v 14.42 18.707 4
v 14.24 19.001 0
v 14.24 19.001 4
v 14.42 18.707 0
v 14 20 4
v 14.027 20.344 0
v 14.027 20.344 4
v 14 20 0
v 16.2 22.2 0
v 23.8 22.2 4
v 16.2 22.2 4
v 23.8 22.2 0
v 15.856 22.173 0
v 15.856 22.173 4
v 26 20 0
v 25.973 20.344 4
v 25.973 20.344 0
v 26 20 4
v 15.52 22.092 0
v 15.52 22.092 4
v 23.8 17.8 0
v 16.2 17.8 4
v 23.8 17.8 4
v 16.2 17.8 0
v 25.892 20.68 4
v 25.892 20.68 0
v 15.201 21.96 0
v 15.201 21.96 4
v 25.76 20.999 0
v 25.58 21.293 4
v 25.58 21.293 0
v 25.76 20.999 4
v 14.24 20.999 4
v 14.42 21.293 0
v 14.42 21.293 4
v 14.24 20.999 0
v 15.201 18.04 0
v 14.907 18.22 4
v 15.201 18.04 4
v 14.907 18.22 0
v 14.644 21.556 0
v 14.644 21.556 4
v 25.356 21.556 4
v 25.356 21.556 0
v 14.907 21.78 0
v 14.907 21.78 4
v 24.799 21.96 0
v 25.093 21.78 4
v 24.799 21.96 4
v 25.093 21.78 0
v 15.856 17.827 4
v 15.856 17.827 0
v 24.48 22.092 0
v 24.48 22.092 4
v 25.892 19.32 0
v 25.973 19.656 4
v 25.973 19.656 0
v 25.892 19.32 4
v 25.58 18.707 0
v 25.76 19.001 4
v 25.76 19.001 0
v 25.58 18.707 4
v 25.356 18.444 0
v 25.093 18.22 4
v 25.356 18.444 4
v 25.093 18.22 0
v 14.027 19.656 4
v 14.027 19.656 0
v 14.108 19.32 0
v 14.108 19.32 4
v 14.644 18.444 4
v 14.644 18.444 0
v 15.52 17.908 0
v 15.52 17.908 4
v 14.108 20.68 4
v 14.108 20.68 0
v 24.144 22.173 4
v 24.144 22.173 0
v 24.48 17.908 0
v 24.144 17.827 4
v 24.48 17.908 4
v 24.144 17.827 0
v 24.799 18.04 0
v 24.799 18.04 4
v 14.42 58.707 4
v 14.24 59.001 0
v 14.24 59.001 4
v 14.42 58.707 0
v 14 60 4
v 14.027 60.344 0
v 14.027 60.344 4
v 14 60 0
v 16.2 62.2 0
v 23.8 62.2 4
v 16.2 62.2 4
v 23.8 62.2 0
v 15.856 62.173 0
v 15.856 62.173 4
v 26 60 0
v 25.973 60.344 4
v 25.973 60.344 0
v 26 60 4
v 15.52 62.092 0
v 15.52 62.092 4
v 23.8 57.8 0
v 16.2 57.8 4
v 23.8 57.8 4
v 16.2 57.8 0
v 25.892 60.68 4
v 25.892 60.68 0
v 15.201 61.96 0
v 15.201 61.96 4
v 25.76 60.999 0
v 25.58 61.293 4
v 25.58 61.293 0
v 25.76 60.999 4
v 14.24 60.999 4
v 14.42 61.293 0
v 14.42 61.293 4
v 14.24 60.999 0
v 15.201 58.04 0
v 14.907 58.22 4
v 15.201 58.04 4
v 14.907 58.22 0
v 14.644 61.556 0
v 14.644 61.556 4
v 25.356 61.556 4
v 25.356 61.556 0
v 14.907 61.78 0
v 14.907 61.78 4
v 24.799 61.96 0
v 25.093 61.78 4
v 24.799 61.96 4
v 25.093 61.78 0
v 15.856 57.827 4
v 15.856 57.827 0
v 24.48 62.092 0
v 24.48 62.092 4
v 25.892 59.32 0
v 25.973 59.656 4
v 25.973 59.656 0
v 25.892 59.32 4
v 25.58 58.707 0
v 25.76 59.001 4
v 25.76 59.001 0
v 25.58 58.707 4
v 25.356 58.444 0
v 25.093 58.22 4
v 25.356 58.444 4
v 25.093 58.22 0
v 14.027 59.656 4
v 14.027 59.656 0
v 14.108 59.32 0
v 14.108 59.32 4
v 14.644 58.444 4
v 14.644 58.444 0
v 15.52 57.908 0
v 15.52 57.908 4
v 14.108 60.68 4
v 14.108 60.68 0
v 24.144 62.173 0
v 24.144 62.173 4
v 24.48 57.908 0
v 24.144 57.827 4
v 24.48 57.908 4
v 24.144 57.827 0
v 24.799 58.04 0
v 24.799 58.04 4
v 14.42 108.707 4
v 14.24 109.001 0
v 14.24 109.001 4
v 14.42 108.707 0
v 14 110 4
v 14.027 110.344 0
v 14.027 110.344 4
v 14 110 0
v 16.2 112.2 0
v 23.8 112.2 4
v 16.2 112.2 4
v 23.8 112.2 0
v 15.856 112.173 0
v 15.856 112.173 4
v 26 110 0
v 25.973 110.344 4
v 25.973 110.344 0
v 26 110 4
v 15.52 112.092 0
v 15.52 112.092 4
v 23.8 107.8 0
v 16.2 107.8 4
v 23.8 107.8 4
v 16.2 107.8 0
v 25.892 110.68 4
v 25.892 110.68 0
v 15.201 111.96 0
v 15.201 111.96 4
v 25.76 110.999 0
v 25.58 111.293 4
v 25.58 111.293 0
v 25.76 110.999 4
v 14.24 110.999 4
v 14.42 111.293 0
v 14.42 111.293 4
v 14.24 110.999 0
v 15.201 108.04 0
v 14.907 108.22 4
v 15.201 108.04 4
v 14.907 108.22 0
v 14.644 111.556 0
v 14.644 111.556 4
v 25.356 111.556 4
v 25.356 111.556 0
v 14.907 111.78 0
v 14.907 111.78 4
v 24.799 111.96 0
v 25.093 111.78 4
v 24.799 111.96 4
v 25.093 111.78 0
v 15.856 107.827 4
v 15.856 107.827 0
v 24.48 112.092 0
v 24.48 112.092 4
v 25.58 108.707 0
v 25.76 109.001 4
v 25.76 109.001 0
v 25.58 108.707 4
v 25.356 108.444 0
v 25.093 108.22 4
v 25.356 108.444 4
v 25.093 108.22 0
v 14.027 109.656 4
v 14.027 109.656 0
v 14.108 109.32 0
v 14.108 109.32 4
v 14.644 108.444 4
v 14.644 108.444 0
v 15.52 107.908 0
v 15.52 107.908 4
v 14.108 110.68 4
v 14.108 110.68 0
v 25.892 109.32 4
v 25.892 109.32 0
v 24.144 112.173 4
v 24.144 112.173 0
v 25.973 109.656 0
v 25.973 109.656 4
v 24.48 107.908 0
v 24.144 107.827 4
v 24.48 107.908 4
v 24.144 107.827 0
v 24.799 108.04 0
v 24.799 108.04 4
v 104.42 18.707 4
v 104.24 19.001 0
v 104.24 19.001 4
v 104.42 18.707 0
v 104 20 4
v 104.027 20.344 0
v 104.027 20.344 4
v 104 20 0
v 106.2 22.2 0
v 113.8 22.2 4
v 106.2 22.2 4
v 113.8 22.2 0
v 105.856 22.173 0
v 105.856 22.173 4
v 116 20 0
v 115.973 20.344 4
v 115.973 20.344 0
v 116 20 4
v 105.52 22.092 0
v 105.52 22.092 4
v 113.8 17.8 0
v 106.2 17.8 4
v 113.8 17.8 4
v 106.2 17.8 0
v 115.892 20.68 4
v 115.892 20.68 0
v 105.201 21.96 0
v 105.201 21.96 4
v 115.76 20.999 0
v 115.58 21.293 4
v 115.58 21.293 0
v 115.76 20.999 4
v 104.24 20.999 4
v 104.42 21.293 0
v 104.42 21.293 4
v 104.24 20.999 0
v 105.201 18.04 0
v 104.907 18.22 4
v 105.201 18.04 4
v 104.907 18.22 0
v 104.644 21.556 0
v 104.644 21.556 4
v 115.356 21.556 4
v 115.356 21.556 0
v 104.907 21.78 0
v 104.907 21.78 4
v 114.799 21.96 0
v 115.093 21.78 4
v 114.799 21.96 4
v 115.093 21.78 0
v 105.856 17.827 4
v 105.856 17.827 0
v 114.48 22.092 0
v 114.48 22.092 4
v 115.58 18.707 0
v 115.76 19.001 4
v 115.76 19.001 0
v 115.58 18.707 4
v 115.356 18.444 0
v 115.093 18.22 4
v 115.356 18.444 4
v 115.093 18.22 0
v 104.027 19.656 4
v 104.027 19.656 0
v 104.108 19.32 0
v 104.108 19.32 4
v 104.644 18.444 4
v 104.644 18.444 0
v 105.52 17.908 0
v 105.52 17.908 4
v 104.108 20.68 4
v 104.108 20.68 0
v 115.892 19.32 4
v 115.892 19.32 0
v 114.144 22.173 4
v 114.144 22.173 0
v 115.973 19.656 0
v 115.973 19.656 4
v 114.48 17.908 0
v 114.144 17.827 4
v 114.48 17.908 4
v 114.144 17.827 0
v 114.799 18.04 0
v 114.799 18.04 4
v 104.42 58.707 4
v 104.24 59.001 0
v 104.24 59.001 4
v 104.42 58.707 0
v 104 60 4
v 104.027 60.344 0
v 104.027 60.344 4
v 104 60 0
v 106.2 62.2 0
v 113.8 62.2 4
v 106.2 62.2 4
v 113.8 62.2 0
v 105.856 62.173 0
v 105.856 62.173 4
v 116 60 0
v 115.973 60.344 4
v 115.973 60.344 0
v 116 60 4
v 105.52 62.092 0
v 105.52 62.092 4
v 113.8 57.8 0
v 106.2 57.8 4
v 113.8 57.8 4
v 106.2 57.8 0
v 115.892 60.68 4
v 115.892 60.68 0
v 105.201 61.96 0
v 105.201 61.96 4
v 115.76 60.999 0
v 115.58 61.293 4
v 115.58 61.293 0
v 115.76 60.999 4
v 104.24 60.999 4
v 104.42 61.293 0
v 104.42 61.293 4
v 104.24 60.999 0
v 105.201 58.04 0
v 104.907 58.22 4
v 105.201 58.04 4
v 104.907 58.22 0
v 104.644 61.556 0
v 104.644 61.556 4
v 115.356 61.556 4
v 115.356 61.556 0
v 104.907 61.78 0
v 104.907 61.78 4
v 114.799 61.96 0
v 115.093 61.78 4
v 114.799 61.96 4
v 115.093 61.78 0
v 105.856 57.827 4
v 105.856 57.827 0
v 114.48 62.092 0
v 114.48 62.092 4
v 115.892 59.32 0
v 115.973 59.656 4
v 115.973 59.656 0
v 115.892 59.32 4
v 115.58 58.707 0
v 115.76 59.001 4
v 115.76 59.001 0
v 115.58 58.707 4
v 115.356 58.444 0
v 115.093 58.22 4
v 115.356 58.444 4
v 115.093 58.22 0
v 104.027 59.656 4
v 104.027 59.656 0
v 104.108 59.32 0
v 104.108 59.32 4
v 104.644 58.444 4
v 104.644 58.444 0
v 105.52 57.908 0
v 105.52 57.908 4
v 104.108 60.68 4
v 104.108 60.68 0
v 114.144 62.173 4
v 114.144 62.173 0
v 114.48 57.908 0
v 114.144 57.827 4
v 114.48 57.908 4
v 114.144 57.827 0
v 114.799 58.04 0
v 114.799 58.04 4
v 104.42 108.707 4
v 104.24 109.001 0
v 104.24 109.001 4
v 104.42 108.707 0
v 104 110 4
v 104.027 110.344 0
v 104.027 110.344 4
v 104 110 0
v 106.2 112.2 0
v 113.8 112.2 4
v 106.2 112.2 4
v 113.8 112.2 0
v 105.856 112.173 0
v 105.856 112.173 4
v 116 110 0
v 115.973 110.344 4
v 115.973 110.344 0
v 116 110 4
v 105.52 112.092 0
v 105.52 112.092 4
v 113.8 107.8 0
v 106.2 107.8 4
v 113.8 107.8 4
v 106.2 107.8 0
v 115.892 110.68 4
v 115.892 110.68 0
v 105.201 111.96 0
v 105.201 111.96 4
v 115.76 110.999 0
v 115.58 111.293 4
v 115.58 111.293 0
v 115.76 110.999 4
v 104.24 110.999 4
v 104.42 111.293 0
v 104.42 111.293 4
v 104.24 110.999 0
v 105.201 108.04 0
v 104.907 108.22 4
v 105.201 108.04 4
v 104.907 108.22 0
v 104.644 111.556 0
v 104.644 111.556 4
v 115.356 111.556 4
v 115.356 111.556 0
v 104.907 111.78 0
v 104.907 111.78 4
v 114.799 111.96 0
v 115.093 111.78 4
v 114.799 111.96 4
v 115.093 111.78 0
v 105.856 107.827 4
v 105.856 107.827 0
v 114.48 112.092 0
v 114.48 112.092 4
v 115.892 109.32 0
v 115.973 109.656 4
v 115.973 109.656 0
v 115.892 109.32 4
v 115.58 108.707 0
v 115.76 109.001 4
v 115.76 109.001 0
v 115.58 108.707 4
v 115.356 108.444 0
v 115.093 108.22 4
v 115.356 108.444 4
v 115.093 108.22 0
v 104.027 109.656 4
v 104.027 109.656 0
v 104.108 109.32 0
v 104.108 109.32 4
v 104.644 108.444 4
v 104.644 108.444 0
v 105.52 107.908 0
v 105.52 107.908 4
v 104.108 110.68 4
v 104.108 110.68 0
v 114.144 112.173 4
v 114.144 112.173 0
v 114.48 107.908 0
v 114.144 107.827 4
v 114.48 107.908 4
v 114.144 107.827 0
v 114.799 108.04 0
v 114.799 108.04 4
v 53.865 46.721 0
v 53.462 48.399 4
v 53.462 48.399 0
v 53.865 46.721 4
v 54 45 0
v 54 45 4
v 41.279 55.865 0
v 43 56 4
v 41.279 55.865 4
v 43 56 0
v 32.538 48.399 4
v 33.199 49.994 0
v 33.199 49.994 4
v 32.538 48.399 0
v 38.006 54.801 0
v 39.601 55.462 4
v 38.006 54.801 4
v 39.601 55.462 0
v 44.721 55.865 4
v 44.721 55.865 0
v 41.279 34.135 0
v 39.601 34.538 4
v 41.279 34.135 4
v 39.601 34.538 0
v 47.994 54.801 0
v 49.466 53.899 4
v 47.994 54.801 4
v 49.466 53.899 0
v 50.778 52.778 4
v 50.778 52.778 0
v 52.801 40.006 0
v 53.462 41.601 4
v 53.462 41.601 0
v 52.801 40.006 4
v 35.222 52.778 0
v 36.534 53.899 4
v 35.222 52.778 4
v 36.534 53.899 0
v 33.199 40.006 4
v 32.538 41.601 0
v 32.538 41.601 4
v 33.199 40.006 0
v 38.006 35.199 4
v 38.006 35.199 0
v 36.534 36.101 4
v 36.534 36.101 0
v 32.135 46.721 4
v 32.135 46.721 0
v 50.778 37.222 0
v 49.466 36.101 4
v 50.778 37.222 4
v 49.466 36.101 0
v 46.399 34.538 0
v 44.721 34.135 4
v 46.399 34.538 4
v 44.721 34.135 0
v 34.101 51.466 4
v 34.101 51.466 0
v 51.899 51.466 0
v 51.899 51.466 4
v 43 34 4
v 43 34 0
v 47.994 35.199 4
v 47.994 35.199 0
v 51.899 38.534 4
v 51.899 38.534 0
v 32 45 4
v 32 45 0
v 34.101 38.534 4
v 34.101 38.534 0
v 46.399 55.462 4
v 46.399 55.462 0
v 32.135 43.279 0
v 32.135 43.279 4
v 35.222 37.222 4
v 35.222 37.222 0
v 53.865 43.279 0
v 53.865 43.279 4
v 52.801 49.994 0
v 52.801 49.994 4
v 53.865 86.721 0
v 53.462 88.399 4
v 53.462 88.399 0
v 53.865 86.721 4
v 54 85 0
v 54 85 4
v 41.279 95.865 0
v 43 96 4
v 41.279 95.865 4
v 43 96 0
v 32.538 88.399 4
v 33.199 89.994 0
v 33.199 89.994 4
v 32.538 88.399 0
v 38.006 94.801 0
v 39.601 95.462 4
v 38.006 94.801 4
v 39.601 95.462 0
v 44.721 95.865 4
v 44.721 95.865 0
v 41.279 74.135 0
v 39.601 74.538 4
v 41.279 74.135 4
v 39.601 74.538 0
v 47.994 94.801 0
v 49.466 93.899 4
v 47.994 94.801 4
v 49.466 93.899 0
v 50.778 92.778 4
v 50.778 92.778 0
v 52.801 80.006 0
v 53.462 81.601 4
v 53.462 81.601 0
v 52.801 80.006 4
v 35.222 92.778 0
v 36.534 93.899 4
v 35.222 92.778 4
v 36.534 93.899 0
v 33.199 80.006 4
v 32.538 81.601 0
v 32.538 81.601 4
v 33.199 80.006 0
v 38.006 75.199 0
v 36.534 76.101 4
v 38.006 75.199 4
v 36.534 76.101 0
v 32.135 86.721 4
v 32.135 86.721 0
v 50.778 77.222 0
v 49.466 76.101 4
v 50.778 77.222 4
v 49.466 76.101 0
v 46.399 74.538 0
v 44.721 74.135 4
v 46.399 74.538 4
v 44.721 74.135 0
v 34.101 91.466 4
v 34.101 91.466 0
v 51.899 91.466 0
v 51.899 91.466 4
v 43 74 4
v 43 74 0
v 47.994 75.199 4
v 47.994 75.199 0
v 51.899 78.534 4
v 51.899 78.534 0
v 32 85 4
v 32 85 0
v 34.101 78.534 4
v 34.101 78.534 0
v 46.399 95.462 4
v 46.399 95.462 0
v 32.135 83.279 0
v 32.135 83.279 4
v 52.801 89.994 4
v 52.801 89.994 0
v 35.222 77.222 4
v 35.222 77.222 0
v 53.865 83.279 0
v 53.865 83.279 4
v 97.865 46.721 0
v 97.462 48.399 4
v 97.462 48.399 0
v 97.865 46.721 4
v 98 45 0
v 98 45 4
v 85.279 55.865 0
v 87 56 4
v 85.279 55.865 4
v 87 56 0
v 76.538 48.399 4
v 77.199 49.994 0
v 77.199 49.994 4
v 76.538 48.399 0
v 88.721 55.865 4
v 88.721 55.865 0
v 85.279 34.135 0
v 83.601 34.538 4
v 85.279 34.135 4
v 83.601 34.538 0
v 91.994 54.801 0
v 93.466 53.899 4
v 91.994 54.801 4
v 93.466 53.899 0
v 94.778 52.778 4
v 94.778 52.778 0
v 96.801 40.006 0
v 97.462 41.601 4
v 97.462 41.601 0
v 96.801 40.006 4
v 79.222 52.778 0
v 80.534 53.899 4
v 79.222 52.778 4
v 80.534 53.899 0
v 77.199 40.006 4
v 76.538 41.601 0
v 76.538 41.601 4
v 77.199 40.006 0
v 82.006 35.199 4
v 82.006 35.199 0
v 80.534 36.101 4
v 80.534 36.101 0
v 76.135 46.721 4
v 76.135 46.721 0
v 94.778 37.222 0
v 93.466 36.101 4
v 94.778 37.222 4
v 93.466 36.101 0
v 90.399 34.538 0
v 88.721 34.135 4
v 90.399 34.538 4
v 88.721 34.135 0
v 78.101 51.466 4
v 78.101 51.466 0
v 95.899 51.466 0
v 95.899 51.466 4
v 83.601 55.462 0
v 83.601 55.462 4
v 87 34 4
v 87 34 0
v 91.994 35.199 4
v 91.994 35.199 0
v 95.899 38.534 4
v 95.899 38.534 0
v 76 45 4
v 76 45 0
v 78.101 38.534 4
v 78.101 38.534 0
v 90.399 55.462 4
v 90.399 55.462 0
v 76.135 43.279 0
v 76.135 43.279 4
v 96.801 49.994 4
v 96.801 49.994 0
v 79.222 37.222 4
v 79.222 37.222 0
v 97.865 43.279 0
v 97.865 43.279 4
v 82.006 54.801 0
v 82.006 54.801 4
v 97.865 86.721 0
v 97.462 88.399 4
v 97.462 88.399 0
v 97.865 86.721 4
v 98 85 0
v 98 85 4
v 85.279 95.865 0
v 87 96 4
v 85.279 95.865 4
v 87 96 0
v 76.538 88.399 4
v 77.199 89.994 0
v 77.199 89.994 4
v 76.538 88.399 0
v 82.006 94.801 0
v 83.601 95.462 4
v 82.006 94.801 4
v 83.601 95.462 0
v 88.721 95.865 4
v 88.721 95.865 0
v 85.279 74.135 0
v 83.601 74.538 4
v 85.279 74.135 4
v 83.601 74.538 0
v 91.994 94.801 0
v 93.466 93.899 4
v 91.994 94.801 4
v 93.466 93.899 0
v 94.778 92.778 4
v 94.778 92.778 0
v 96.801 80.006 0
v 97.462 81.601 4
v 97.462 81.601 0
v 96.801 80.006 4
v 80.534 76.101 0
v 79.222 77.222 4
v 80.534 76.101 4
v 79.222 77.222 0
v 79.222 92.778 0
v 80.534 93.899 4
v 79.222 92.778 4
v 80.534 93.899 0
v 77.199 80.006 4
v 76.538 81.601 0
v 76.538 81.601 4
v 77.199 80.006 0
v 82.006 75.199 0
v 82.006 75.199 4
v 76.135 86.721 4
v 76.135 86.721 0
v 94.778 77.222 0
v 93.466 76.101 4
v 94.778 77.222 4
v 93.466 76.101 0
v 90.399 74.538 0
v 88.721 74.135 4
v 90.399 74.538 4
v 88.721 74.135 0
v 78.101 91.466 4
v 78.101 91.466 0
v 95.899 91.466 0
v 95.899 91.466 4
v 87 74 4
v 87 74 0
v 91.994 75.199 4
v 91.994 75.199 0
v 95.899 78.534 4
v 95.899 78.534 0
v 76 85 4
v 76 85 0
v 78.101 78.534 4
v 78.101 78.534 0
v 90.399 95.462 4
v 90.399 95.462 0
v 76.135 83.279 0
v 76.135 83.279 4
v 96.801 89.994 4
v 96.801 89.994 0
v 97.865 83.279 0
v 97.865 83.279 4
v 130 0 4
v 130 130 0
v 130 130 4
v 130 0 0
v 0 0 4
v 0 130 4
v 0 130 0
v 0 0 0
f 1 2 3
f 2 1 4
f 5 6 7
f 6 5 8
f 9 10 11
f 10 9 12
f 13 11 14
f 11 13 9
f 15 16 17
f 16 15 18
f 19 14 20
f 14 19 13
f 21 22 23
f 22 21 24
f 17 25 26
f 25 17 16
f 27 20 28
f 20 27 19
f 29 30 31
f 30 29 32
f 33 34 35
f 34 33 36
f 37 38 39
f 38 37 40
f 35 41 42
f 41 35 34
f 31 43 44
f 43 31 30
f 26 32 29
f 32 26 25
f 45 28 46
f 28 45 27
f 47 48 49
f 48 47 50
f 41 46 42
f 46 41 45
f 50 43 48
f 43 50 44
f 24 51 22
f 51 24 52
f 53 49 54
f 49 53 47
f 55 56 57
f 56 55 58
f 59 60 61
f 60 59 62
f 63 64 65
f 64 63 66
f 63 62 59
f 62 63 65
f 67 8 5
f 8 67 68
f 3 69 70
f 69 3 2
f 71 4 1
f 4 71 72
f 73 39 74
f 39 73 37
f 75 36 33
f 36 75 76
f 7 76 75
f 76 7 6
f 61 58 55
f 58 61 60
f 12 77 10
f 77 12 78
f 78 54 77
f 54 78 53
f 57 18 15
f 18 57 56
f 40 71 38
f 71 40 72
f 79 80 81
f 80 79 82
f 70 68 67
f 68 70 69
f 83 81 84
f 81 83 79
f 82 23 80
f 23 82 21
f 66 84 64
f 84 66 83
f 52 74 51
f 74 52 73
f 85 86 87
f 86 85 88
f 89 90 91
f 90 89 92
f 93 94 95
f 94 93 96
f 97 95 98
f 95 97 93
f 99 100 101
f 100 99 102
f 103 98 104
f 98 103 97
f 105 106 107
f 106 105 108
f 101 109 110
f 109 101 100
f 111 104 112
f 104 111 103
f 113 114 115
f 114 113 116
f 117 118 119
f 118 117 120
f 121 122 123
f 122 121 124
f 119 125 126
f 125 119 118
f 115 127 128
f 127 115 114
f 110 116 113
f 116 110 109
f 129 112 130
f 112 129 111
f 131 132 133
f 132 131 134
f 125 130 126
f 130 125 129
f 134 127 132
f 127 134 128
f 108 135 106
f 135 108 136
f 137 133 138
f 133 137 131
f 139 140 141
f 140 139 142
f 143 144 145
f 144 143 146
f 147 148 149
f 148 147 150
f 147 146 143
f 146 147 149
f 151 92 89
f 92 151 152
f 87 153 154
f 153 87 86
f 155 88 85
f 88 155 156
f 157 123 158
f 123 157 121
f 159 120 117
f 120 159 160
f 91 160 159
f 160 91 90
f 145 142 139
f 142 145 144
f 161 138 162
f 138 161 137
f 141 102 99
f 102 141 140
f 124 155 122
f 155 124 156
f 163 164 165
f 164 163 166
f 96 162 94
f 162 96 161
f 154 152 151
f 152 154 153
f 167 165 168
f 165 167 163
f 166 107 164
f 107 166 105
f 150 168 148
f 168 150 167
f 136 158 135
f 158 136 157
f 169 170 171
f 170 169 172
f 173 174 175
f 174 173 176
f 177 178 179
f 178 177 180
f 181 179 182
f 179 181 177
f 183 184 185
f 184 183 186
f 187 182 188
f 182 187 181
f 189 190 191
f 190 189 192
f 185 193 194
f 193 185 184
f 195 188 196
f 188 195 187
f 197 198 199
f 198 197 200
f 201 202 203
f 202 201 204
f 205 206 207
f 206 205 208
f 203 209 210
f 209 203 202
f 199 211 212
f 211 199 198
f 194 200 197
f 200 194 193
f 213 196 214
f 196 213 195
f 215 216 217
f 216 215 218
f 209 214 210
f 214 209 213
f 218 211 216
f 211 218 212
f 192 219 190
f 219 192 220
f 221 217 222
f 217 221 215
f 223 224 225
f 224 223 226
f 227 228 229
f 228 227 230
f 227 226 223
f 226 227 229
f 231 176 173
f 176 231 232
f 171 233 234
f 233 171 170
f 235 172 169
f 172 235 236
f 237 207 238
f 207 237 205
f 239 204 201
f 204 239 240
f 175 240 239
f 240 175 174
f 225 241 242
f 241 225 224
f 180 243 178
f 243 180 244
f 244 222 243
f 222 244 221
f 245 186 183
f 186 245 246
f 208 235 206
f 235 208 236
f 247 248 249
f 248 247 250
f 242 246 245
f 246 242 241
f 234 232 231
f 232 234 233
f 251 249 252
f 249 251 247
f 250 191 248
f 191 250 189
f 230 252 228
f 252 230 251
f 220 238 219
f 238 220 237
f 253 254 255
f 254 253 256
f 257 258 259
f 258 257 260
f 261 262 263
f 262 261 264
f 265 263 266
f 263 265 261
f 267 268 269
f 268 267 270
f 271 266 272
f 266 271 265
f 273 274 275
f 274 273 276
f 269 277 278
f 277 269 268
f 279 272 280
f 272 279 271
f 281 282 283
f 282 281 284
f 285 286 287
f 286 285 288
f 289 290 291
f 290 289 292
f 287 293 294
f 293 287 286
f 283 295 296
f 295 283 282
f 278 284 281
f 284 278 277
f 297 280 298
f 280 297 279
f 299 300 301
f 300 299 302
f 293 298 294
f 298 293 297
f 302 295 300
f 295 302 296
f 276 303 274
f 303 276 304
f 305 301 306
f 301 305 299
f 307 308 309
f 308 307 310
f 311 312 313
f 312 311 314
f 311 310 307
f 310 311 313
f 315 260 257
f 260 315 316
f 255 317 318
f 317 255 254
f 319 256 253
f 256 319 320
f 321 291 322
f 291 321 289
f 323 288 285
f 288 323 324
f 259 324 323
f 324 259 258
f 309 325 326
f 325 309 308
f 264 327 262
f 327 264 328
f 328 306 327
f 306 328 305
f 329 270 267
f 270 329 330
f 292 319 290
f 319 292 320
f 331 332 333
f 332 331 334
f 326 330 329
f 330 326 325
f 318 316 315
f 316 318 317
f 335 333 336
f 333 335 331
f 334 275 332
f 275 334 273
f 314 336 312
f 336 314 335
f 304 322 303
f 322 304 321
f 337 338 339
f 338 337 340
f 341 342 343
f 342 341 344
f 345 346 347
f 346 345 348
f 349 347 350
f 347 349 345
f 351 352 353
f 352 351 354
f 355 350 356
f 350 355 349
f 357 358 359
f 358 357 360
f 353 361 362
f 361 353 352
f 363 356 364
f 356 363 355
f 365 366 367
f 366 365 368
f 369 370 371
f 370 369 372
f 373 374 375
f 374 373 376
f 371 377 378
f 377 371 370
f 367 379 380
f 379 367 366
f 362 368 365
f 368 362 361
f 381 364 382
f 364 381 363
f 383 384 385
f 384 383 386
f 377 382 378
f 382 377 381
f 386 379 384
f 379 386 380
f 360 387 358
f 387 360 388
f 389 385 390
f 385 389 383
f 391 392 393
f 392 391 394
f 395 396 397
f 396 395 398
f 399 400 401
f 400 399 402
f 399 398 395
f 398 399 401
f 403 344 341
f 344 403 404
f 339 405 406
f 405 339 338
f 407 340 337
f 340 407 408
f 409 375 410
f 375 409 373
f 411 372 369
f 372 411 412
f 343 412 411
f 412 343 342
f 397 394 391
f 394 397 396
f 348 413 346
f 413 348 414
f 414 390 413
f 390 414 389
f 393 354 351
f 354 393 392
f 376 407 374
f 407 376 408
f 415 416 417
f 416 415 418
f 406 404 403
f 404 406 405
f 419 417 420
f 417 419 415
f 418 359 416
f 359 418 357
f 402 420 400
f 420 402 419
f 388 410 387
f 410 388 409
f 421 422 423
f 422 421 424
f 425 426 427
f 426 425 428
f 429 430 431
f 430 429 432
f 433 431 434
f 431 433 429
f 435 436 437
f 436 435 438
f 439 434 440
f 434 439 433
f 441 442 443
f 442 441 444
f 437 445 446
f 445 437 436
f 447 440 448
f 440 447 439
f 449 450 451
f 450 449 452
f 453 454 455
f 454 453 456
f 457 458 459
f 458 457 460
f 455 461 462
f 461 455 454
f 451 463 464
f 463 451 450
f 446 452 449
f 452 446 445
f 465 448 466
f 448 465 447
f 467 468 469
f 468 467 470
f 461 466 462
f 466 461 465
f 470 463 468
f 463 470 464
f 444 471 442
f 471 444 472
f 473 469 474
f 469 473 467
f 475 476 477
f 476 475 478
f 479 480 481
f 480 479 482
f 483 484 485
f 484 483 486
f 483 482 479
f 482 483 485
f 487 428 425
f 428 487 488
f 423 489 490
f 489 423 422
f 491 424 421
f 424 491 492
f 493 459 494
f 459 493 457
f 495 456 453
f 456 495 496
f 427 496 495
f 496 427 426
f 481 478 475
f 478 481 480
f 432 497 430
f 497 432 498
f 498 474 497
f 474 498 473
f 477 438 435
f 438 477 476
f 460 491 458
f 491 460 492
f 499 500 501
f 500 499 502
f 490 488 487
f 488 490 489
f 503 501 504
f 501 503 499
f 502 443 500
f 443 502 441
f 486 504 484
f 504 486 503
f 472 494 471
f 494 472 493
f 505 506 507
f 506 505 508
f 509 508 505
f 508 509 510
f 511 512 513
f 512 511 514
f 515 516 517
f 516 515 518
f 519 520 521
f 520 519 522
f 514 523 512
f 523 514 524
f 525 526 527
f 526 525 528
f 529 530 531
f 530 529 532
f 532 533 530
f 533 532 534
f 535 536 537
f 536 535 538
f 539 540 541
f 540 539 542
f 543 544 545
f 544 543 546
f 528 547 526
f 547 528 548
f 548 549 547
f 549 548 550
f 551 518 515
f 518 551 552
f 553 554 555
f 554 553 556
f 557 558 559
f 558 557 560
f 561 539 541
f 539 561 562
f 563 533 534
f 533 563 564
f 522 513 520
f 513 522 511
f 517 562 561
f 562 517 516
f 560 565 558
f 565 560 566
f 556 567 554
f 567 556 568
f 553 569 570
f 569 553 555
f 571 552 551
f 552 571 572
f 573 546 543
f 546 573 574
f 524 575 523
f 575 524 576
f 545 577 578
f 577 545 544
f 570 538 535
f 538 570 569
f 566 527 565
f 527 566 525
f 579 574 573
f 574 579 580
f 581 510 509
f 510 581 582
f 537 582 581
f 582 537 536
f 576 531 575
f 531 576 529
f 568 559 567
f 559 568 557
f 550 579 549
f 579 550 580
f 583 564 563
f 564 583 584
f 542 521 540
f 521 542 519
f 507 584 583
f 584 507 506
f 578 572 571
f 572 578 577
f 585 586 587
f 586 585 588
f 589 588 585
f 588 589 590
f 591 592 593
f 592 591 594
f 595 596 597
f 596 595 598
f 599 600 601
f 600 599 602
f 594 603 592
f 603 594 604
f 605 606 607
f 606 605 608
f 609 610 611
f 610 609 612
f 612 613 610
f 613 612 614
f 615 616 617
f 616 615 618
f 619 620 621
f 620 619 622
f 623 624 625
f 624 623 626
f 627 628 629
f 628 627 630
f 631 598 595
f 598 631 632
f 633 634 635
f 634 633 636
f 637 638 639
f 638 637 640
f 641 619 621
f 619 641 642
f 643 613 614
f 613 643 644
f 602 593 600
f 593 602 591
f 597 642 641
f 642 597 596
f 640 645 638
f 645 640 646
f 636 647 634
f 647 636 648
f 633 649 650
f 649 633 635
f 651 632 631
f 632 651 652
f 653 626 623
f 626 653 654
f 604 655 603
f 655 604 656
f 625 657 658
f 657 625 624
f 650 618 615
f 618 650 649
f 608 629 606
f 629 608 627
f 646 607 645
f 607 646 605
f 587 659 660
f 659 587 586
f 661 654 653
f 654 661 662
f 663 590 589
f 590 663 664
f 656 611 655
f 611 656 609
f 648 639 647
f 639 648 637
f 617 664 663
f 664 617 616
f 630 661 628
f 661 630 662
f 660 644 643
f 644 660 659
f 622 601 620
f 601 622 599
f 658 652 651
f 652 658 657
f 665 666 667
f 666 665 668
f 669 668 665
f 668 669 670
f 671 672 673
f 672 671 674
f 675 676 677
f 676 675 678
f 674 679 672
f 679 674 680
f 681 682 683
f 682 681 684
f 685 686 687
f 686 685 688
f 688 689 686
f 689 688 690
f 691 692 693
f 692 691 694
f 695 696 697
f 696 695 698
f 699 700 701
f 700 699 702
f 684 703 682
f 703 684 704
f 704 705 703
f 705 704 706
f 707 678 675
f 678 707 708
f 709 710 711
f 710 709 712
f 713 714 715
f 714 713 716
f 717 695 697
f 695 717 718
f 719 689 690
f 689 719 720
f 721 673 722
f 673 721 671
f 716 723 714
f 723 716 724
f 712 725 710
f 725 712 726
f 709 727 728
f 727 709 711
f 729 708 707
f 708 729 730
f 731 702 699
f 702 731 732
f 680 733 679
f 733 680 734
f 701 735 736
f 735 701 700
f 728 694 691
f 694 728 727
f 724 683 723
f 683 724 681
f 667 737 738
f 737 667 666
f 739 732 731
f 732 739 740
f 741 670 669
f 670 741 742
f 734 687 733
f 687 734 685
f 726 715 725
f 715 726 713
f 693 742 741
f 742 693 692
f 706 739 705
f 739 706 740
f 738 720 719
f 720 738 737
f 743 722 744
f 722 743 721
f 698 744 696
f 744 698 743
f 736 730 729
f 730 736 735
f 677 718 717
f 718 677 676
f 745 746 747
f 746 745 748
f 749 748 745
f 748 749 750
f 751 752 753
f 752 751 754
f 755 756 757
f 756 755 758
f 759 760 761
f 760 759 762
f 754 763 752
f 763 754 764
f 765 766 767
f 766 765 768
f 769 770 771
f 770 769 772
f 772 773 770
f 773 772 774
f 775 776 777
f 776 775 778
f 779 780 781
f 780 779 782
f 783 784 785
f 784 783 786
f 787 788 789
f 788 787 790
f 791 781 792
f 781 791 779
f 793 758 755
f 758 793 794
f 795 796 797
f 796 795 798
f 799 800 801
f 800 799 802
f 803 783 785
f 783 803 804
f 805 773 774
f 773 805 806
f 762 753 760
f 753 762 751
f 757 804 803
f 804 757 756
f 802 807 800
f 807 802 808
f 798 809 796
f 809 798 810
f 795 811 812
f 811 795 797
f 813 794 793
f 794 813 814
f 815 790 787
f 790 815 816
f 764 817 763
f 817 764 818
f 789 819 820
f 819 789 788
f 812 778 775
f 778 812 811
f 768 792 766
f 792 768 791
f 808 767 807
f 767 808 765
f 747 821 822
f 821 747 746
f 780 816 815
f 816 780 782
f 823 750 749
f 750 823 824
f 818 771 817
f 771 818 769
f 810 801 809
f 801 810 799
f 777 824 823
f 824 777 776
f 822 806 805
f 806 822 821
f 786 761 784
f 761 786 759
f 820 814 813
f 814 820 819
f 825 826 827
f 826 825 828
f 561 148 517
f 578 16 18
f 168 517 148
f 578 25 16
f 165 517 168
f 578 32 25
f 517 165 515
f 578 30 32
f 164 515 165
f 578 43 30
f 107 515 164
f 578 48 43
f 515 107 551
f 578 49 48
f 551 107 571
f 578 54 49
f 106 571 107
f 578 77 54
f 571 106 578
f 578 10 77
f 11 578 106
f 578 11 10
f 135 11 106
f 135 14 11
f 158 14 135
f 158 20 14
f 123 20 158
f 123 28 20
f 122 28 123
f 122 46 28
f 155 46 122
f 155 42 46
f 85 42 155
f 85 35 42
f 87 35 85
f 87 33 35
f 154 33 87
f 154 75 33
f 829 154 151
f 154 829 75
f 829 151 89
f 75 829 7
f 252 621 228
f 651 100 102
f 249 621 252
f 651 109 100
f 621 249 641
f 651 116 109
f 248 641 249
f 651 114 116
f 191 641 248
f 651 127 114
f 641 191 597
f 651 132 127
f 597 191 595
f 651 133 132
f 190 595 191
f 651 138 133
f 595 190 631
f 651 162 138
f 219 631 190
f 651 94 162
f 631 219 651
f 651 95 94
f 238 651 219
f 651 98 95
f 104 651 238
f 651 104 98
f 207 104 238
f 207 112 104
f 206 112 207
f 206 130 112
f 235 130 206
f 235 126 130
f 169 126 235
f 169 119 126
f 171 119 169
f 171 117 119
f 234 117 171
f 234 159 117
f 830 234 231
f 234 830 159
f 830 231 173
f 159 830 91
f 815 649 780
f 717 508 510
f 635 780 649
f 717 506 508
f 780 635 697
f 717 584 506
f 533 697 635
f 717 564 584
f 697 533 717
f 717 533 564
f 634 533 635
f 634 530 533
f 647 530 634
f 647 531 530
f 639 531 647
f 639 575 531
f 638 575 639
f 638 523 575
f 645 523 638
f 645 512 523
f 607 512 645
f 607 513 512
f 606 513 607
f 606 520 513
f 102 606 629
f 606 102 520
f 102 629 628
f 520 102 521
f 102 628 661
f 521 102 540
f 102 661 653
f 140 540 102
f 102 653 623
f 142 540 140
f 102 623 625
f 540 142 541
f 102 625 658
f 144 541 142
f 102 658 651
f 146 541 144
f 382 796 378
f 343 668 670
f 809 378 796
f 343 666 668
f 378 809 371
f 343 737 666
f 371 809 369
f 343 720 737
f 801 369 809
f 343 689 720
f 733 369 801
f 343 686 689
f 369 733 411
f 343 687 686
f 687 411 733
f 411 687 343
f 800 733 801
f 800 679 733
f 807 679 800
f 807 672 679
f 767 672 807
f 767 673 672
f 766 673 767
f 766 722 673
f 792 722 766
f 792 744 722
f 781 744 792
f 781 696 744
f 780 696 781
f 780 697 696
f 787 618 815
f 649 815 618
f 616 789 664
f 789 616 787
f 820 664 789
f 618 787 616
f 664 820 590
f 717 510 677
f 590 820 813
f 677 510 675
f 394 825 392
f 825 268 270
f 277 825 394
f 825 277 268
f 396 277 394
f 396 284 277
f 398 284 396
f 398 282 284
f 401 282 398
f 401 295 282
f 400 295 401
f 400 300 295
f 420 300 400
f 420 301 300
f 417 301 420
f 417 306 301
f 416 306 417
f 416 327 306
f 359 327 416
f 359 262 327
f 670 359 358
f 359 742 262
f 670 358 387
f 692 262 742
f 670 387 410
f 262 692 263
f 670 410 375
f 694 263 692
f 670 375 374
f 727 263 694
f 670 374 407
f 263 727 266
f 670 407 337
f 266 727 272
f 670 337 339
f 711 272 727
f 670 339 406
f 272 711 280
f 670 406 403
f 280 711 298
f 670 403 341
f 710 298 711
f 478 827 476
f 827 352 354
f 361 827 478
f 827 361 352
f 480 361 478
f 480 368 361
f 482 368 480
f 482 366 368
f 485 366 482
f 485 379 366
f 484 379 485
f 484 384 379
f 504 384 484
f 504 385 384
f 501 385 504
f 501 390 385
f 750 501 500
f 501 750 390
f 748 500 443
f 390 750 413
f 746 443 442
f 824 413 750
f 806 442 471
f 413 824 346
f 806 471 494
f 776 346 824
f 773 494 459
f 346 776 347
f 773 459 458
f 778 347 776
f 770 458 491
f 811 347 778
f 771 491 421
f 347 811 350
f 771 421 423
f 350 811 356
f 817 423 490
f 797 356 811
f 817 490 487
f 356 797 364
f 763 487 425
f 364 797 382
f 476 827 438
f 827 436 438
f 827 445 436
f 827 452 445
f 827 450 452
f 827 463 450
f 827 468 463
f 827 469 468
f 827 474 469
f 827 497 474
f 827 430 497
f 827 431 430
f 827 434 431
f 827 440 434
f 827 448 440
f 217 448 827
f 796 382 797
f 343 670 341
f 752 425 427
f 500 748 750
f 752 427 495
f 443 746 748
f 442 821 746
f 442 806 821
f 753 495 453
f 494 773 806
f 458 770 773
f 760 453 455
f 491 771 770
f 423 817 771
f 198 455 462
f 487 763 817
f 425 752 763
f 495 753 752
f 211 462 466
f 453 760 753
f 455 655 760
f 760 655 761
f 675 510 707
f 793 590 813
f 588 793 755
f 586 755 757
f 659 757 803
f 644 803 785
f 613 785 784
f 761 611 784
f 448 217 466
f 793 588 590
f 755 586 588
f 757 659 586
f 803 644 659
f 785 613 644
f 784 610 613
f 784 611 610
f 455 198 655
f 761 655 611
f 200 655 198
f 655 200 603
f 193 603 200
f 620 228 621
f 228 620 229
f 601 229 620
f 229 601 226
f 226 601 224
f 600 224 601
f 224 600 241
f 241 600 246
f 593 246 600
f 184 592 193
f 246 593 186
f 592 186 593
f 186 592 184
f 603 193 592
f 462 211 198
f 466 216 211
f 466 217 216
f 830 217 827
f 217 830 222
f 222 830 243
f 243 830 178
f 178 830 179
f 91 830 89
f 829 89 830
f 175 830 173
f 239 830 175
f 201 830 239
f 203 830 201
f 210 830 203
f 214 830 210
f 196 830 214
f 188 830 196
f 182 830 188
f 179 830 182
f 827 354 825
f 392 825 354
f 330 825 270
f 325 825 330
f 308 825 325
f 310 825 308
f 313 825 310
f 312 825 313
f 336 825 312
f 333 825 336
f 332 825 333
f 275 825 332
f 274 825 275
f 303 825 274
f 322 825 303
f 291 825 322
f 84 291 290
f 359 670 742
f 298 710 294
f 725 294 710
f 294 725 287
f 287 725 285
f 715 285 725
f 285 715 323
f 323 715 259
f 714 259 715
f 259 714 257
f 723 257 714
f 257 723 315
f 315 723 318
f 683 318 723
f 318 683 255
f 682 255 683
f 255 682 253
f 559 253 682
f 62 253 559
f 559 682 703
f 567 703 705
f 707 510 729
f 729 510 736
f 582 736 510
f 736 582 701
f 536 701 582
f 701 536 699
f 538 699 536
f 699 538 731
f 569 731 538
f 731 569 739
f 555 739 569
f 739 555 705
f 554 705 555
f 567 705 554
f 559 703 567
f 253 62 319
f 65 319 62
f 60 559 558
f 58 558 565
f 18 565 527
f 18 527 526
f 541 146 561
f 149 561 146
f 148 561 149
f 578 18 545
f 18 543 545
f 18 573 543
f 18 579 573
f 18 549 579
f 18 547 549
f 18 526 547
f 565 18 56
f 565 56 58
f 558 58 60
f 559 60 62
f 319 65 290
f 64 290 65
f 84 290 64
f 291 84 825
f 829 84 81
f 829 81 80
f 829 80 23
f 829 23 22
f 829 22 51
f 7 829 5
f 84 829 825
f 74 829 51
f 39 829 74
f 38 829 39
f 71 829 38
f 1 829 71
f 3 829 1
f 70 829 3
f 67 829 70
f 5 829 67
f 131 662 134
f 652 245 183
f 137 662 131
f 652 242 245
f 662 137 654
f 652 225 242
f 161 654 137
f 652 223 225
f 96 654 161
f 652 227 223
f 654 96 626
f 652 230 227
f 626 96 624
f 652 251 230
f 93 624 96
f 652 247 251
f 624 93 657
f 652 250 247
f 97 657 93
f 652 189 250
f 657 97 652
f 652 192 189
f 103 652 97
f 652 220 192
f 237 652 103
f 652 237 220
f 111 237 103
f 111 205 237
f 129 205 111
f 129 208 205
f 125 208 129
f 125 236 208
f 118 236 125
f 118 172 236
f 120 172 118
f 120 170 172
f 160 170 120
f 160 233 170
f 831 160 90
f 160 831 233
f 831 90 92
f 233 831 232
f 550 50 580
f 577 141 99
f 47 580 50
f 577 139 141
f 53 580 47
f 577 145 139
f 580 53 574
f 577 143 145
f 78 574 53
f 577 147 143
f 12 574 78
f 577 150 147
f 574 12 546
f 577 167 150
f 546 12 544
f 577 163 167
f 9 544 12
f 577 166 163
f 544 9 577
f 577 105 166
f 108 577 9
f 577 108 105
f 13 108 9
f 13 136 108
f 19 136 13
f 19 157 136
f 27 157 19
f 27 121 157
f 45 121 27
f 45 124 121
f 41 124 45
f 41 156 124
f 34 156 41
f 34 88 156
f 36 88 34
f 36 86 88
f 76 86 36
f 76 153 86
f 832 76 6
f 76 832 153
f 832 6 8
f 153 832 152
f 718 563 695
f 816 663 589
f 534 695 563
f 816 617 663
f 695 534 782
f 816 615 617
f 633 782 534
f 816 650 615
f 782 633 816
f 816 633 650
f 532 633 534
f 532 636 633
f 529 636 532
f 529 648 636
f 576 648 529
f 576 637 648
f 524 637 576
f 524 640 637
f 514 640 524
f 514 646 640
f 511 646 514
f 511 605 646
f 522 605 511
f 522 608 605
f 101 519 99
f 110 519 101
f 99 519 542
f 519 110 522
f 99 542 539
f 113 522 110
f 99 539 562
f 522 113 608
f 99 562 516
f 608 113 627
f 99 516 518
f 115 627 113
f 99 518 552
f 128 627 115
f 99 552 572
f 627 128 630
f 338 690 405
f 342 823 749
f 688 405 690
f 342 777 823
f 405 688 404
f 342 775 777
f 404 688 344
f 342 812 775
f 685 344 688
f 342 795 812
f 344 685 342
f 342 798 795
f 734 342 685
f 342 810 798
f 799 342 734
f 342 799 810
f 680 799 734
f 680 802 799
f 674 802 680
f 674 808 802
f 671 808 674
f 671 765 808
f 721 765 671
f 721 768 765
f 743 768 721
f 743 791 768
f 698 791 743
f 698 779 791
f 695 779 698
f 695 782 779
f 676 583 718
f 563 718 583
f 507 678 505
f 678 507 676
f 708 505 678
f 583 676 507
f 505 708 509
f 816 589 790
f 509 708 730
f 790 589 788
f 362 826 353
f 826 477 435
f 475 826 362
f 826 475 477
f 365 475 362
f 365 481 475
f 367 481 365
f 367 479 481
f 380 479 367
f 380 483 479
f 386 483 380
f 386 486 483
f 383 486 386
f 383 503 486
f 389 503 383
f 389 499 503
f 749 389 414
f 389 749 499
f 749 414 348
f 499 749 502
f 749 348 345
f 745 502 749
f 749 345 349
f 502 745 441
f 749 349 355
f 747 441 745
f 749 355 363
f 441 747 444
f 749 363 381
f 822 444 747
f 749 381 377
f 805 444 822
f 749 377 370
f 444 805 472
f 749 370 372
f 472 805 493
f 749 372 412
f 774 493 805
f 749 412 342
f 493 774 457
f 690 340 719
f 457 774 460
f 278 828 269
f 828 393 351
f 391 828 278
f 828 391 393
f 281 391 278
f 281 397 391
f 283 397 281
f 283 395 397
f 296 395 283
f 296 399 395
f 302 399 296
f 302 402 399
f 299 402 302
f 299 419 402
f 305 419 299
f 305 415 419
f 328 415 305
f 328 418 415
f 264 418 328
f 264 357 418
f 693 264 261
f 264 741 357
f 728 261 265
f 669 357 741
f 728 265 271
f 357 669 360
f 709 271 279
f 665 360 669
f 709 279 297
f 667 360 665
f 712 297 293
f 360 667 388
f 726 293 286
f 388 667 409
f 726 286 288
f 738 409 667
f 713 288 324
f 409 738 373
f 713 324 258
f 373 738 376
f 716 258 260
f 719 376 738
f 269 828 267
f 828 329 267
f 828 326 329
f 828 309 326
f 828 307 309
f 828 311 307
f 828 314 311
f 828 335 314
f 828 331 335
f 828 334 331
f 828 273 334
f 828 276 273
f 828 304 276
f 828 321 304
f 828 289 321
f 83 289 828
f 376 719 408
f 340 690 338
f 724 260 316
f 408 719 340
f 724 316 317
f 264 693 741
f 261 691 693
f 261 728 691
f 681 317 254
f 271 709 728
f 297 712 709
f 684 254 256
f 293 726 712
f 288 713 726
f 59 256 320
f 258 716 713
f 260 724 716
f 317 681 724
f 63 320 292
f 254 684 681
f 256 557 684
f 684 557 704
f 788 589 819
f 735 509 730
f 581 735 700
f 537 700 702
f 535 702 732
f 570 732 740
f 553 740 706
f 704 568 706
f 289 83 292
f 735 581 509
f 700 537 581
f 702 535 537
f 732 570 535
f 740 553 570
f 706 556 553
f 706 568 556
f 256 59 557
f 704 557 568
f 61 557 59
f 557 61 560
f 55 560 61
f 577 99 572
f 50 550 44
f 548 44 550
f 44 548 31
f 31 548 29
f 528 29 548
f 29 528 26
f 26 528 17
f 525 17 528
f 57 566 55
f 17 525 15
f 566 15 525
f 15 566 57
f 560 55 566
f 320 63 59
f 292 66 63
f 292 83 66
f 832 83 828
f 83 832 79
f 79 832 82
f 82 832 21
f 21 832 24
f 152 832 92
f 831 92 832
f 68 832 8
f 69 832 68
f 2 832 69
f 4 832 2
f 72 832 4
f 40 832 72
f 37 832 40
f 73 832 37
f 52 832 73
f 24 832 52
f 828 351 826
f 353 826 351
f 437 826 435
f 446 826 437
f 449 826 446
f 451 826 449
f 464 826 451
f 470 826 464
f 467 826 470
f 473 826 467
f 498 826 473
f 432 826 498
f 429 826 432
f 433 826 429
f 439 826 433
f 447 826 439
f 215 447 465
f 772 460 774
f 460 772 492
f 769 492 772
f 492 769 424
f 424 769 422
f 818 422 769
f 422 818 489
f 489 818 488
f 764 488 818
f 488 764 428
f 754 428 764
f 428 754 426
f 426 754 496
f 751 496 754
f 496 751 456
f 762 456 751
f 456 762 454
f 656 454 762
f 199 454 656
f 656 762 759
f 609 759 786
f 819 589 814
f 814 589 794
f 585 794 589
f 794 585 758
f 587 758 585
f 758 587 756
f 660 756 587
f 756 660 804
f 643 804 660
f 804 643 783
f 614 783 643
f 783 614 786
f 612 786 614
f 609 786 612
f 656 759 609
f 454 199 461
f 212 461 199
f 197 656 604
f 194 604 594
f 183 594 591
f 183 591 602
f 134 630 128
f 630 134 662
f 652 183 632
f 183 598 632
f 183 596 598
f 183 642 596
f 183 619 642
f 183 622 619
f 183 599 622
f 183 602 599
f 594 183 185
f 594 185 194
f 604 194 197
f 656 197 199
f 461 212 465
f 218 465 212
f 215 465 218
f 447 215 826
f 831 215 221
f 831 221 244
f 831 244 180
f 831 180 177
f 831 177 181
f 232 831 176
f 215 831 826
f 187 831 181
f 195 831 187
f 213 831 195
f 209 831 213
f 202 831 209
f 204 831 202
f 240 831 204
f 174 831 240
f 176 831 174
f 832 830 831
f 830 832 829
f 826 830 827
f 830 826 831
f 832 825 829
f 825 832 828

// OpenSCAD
/* TAM THAN TREN MAU, KHONG CHIU LUC. Don vi mm.
 * Ghep chong 40 mm: khe y=20 tam tren thang hang khe y=130 tam duoi.
 */
$fn=40;
w=130; h=130; t=4;
module slot(x,y,len=12,d=4.4){translate([x,y,-.1])linear_extrude(height=t+.2) hull(){translate([-(len-d)/2,0])circle(d=d);translate([(len-d)/2,0])circle(d=d);}}
difference(){
 cube([w,h,t]);
 for(x=[20,110],y=[20,60,110])slot(x,y);
 for(x=[43,87],y=[45,85]) translate([x,y,-.1])cylinder(h=t+.2,d=22);
}
